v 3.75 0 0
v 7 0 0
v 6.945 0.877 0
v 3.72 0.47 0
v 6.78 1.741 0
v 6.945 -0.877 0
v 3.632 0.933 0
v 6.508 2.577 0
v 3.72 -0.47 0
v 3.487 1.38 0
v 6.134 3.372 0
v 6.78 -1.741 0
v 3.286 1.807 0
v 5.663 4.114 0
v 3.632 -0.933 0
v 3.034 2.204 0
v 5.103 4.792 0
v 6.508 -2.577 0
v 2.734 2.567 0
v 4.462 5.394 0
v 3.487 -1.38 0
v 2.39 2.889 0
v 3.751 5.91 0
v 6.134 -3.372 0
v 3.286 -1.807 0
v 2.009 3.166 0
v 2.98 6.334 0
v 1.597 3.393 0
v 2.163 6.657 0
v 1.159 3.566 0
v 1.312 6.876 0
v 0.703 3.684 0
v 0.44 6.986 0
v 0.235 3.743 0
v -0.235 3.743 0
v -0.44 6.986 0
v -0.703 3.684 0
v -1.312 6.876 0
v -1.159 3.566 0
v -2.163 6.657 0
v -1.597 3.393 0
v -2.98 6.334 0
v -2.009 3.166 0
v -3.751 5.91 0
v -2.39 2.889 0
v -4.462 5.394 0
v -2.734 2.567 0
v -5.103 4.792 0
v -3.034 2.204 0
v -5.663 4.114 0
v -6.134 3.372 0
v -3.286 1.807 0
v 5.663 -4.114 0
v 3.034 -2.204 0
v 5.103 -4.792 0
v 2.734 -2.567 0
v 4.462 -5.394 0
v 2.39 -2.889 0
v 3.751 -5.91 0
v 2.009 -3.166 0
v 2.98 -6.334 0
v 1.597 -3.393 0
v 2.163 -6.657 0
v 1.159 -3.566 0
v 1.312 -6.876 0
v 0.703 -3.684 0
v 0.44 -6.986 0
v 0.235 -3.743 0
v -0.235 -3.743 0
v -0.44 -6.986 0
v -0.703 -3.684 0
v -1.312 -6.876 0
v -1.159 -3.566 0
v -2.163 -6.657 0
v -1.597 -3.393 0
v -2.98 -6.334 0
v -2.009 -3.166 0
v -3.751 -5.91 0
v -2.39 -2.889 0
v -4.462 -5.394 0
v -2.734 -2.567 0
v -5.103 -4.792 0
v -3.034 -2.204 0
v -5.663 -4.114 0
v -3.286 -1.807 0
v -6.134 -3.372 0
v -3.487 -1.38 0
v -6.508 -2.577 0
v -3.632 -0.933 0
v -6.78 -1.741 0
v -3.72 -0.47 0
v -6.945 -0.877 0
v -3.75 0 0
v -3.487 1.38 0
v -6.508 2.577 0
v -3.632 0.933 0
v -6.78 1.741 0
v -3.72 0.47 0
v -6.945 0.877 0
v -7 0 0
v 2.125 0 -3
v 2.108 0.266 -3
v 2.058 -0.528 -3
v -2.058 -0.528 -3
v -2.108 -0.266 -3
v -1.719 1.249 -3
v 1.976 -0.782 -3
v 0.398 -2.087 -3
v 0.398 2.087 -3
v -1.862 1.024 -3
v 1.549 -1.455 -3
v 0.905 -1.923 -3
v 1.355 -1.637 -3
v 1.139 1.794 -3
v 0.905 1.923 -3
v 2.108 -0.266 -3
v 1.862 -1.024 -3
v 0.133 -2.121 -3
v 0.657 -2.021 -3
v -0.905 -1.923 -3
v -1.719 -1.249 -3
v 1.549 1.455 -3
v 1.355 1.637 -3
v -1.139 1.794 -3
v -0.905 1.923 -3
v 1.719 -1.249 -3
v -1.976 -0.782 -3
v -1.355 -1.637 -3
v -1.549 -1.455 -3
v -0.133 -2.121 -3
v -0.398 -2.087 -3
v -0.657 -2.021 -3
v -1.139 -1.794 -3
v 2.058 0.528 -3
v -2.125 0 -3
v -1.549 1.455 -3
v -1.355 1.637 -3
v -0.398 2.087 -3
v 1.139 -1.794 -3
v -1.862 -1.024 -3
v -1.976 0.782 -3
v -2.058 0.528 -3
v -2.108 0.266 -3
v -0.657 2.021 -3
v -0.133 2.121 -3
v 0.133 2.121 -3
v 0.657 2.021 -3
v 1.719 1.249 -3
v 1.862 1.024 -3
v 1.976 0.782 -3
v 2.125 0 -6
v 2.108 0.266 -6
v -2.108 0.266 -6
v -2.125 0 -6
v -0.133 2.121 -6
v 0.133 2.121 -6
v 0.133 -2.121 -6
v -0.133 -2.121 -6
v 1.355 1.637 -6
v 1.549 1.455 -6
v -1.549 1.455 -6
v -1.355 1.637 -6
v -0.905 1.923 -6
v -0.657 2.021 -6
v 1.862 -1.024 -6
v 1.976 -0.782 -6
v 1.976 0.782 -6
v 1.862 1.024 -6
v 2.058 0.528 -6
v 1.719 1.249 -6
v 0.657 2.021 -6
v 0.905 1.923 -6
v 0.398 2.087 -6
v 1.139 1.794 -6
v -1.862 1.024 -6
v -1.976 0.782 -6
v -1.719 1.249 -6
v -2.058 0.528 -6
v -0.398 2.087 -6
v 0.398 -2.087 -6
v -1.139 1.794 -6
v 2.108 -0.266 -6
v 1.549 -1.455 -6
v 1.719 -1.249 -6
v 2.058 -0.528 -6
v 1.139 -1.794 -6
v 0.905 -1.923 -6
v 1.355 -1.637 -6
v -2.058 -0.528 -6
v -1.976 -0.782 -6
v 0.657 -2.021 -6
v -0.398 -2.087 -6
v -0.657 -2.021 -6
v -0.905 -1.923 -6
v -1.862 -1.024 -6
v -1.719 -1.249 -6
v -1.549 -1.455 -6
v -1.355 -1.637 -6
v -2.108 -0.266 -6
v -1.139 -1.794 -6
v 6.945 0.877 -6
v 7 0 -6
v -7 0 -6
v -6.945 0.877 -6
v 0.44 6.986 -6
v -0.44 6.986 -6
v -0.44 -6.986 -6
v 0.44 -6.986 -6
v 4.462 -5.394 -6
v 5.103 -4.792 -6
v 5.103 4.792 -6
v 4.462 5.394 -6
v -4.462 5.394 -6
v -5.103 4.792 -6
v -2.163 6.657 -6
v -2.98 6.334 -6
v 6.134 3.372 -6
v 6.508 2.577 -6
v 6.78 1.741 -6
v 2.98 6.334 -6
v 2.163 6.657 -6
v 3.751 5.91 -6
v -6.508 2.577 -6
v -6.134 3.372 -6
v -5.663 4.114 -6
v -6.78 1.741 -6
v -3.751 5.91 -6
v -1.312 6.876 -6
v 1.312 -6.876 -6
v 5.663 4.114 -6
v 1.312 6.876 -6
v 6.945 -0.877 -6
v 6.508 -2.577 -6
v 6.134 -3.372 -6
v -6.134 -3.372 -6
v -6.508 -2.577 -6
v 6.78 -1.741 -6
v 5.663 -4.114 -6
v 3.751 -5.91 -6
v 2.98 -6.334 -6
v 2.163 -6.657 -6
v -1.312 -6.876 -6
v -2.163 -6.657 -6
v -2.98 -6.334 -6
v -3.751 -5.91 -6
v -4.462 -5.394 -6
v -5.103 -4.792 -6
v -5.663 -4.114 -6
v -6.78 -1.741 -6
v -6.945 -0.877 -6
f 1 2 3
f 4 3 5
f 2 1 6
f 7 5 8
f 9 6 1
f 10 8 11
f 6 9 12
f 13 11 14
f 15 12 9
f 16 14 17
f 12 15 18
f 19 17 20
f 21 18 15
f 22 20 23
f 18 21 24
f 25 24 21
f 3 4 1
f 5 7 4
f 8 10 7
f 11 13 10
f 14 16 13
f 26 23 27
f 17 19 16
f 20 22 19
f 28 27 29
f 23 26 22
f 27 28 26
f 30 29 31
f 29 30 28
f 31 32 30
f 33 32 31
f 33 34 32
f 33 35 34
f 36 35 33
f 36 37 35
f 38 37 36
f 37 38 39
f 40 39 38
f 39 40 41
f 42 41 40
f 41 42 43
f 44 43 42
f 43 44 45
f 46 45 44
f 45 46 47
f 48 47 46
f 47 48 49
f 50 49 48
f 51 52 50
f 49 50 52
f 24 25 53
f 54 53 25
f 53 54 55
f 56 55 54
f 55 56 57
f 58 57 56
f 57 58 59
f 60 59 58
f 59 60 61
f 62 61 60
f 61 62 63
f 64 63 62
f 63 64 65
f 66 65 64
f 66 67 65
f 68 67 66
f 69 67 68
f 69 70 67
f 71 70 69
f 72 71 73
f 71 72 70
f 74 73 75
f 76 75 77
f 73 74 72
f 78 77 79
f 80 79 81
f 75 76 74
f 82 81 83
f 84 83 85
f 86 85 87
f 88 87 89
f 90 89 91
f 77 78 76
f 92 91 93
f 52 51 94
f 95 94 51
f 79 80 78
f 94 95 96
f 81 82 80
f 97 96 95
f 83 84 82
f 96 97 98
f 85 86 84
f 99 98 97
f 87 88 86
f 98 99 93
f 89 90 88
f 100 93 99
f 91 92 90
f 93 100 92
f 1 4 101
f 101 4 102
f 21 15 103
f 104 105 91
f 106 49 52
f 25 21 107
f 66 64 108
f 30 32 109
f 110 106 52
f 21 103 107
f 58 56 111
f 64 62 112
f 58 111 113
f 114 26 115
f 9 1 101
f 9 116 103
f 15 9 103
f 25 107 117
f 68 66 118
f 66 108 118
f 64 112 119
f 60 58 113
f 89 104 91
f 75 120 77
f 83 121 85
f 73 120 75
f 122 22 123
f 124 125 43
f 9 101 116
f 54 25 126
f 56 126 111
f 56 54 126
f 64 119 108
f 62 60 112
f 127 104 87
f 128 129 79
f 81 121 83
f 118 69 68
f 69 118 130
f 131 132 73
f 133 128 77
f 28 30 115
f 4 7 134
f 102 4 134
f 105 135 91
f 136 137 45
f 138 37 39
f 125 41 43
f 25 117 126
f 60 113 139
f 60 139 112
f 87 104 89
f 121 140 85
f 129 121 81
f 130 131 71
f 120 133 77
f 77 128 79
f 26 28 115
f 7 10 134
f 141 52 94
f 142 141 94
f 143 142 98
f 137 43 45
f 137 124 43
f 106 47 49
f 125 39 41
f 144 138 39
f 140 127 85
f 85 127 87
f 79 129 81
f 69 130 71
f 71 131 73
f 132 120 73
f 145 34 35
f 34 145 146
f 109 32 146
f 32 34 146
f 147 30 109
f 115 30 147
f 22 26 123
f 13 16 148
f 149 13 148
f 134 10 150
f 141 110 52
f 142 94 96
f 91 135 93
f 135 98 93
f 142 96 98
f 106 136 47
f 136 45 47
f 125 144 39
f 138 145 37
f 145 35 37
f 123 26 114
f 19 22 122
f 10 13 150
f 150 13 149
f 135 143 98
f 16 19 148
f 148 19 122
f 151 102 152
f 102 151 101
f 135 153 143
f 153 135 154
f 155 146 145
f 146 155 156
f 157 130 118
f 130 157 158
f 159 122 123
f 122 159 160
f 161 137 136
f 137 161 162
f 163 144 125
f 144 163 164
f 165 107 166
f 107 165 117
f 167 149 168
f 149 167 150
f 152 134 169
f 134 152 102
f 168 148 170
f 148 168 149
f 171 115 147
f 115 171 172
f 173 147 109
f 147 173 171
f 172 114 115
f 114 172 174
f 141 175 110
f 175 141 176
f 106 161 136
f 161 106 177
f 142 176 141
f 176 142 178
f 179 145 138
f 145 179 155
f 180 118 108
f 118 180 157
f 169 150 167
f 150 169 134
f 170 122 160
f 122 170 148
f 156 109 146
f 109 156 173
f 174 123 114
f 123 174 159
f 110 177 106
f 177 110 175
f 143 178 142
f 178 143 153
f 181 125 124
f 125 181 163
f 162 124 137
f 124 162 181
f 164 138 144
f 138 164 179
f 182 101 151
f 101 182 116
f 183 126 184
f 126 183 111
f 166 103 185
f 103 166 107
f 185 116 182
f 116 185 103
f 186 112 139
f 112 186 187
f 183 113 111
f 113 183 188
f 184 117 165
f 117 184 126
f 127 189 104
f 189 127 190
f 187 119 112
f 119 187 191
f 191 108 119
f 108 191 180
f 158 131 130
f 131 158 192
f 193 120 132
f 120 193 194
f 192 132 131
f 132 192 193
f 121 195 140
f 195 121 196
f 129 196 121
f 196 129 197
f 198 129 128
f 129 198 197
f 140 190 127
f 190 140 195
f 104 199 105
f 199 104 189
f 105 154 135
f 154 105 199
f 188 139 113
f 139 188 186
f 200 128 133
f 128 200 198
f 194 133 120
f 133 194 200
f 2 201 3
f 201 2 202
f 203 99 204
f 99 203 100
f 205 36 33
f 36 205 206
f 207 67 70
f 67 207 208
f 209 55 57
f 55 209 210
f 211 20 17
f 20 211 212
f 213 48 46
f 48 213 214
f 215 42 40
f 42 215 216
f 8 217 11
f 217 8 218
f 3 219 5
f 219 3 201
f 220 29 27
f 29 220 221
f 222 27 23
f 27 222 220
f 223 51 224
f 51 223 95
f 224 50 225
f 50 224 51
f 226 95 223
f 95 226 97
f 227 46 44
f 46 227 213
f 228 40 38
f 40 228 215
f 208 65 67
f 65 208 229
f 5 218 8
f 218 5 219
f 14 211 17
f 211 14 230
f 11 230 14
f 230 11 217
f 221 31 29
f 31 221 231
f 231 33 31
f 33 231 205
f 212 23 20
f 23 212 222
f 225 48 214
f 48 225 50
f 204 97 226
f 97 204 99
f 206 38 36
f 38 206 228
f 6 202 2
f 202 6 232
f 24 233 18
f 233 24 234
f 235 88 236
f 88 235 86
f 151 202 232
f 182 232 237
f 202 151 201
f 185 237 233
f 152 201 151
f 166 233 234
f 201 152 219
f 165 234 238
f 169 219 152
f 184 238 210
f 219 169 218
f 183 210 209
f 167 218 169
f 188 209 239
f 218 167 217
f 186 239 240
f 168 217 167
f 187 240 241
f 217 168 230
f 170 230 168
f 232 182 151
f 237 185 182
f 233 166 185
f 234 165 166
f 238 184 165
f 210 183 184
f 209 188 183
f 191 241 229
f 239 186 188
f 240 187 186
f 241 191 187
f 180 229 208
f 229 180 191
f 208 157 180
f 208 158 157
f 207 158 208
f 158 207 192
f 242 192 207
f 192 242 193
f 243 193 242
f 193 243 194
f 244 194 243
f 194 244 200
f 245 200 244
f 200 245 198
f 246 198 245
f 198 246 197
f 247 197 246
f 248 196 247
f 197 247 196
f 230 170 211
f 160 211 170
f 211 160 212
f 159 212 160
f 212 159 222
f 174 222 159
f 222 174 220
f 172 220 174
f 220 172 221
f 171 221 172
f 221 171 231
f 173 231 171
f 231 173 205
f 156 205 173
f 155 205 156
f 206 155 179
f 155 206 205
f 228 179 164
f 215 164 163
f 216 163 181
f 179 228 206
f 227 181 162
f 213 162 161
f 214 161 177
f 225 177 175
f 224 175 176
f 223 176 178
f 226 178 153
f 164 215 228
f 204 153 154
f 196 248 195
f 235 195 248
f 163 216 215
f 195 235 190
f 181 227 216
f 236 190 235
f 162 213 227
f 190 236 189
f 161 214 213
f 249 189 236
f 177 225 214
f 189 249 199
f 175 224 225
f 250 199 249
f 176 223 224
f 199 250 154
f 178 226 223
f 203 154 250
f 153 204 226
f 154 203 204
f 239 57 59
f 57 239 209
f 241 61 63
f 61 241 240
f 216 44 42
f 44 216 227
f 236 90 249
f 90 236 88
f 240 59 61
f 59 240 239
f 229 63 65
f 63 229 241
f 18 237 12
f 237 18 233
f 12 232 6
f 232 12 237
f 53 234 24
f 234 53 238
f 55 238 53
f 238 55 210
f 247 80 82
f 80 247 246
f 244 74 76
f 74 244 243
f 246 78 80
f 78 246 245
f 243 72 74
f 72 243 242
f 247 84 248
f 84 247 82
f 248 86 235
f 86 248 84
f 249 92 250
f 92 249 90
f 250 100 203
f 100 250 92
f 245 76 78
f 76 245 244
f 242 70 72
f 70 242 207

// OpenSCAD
$fn = 50;


difference() {
	union() {
		translate(v = [0, 0, -6.0000000000]) {
			cylinder(h = 6, r = 7.0000000000);
		}
	}
	union() {
		translate(v = [0, 0, 0]) {
			rotate(a = [0, 0, 0]) {
				difference() {
					union() {
						translate(v = [0, 0, -9.0000000000]) {
							cylinder(h = 9, r = 2.0000000000);
						}
						translate(v = [0, 0, -3]) {
							cylinder(h = 3, r1 = 2.1250000000, r2 = 3.7500000000);
						}
						translate(v = [0, 0, -9.0000000000]) {
							cylinder(h = 9, r = 2.1250000000);
						}
						translate(v = [0, 0, -9.0000000000]) {
							cylinder(h = 9, r = 2.0000000000);
						}
					}
					union();
				}
			}
		}
	}
}
